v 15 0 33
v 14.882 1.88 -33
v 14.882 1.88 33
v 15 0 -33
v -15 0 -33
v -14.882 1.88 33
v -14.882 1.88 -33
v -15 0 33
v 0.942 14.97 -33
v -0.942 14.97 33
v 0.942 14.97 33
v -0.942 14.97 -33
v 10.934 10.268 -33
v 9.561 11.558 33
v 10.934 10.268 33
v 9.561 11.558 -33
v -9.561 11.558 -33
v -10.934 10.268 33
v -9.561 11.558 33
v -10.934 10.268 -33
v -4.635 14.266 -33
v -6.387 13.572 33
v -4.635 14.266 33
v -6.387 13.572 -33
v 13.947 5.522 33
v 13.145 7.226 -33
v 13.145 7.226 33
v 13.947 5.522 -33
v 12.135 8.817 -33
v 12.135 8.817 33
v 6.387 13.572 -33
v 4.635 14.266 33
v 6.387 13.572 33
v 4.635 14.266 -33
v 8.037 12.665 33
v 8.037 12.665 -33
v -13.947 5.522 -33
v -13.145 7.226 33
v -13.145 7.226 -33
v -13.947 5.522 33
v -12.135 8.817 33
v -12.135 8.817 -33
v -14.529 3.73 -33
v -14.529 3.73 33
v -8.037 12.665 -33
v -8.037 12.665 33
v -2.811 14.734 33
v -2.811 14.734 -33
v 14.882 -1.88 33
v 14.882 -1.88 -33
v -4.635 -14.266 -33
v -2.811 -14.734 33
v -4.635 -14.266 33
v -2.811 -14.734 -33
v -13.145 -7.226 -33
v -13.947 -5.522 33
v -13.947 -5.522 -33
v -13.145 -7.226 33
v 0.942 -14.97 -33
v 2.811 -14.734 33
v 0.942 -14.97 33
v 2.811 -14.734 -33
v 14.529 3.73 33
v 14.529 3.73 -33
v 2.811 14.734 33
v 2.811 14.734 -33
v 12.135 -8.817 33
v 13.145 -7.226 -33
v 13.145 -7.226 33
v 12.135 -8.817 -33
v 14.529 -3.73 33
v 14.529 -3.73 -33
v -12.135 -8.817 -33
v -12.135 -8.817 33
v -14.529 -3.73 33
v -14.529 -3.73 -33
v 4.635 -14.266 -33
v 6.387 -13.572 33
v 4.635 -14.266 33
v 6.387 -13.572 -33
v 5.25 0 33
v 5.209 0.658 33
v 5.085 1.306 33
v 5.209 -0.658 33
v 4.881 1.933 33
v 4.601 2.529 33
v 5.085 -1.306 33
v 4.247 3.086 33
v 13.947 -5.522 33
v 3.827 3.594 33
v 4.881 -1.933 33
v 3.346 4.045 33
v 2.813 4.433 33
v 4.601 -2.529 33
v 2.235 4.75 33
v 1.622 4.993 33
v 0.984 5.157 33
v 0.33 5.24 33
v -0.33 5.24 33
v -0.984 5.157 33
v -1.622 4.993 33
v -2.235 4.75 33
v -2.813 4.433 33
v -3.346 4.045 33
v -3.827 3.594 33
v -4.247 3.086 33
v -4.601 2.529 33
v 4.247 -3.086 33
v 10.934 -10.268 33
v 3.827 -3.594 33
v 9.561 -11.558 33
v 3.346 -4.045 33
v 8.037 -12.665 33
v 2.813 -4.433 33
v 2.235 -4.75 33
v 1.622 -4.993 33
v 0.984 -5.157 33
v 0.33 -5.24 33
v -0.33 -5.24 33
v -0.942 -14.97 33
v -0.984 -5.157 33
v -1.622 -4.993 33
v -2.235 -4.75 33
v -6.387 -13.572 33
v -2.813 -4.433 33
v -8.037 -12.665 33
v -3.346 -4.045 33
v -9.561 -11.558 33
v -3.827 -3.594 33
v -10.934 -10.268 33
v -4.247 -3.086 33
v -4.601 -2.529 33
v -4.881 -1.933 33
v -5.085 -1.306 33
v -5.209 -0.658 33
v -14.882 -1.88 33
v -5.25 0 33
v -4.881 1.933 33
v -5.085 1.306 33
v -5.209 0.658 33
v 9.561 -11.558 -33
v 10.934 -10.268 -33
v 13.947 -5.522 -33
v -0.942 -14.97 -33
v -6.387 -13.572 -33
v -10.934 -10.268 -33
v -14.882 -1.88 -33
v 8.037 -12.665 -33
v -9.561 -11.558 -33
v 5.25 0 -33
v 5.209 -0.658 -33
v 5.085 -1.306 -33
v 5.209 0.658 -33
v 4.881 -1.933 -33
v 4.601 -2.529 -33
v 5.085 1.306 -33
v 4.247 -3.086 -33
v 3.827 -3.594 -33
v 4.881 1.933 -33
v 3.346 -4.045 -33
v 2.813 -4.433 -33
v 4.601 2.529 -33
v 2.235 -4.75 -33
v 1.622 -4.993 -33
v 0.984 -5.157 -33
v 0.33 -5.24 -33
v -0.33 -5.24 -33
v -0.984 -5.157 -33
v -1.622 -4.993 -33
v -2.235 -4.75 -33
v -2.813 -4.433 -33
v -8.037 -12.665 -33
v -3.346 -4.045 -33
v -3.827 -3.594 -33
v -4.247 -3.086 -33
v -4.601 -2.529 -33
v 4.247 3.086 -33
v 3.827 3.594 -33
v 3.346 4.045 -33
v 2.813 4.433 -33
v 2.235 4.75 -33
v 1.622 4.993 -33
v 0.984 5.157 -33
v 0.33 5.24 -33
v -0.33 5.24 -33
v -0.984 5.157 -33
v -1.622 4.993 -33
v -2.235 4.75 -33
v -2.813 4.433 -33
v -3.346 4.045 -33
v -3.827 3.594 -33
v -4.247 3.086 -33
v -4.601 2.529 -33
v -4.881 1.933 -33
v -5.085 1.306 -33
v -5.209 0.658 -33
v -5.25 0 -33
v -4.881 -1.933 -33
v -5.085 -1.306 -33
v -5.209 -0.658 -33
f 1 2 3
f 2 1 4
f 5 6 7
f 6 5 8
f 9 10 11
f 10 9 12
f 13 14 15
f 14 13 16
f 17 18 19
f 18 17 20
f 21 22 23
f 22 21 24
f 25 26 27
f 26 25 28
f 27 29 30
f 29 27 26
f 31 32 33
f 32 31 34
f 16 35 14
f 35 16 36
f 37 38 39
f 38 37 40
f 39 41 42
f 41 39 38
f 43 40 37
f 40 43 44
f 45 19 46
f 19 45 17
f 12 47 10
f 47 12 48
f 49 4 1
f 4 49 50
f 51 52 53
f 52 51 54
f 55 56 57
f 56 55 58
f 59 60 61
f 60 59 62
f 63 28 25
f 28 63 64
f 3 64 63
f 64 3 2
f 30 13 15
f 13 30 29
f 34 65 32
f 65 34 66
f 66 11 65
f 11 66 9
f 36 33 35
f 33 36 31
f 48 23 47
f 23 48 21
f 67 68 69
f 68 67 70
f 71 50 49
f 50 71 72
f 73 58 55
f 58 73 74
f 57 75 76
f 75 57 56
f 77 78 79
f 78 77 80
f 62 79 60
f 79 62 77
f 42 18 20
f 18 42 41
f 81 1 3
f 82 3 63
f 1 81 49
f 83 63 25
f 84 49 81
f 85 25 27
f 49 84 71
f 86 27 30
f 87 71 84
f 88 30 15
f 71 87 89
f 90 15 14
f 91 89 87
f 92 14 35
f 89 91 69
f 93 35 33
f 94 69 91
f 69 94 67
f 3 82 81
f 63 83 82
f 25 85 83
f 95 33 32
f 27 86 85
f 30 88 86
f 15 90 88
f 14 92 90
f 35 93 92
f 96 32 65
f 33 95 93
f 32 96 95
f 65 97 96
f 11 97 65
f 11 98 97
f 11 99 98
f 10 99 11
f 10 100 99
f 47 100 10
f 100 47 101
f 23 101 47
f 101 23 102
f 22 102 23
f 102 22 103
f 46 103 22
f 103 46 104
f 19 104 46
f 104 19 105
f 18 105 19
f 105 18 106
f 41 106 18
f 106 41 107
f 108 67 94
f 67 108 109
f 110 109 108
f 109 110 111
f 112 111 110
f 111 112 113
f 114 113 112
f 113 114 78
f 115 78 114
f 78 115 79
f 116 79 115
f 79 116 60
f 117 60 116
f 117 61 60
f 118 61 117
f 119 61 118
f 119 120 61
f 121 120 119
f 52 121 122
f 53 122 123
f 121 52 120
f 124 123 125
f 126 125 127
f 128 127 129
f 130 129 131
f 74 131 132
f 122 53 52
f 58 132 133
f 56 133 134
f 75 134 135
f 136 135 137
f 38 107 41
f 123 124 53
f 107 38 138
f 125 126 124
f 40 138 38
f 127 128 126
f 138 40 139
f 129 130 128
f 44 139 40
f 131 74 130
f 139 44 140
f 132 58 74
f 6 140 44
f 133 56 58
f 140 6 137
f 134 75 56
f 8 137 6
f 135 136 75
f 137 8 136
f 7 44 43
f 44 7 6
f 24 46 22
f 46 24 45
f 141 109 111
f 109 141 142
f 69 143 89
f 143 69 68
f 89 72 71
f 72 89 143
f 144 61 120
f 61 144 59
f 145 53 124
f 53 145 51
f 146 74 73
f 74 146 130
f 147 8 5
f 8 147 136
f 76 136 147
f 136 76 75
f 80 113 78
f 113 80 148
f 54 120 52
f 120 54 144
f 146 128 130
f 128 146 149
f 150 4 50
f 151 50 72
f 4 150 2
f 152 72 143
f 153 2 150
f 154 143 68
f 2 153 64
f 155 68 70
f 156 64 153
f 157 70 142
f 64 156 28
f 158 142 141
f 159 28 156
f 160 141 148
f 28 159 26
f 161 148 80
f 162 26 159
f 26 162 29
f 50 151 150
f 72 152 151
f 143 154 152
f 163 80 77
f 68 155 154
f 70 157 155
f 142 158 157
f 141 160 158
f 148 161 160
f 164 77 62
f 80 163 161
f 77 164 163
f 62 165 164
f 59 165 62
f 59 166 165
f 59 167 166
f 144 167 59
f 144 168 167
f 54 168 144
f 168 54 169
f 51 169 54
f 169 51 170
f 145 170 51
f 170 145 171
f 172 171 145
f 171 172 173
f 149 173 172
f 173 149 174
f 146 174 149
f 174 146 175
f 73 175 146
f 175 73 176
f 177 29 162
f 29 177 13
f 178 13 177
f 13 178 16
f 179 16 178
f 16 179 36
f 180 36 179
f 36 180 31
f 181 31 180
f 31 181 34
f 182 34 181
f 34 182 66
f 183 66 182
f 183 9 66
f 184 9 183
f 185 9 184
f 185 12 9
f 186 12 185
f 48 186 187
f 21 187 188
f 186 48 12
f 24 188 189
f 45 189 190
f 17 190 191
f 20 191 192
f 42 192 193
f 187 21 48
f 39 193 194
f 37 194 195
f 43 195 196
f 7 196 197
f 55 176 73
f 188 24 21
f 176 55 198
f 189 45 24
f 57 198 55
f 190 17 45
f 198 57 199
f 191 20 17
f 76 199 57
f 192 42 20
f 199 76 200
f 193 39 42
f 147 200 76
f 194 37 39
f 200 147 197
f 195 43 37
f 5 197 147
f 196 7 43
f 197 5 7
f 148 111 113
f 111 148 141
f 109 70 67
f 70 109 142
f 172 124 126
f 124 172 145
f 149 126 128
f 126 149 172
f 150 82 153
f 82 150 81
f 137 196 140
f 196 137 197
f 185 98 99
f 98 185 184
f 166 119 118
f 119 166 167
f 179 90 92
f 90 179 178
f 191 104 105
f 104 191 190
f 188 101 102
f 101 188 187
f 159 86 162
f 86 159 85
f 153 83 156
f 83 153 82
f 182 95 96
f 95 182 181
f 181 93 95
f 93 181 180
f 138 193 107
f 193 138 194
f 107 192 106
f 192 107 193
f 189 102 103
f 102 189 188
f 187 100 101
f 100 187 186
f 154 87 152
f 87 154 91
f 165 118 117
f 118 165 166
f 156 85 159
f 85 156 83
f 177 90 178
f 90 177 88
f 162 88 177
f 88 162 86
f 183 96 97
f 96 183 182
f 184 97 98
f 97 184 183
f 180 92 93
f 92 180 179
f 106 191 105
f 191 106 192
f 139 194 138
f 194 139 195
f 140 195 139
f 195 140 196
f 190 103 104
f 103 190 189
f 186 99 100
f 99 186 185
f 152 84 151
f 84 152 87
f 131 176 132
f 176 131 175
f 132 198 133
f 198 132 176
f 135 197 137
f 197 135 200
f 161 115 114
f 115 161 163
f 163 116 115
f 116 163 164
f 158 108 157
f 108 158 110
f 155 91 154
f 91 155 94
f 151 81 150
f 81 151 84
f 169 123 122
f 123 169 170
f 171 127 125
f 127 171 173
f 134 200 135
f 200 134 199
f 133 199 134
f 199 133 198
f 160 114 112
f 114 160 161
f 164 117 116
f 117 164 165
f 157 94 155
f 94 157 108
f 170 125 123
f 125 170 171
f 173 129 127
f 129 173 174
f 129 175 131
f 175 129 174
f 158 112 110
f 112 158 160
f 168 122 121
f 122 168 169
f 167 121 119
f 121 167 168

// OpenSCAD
$fn = 50;


difference() {
	union() {
		translate(v = [0, 0, -33.0000000000]) {
			cylinder(h = 66, r = 15.0000000000);
		}
	}
	union() {
		translate(v = [0, 0, -100.0000000000]) {
			cylinder(h = 200, r = 5.2500000000);
		}
	}
}
